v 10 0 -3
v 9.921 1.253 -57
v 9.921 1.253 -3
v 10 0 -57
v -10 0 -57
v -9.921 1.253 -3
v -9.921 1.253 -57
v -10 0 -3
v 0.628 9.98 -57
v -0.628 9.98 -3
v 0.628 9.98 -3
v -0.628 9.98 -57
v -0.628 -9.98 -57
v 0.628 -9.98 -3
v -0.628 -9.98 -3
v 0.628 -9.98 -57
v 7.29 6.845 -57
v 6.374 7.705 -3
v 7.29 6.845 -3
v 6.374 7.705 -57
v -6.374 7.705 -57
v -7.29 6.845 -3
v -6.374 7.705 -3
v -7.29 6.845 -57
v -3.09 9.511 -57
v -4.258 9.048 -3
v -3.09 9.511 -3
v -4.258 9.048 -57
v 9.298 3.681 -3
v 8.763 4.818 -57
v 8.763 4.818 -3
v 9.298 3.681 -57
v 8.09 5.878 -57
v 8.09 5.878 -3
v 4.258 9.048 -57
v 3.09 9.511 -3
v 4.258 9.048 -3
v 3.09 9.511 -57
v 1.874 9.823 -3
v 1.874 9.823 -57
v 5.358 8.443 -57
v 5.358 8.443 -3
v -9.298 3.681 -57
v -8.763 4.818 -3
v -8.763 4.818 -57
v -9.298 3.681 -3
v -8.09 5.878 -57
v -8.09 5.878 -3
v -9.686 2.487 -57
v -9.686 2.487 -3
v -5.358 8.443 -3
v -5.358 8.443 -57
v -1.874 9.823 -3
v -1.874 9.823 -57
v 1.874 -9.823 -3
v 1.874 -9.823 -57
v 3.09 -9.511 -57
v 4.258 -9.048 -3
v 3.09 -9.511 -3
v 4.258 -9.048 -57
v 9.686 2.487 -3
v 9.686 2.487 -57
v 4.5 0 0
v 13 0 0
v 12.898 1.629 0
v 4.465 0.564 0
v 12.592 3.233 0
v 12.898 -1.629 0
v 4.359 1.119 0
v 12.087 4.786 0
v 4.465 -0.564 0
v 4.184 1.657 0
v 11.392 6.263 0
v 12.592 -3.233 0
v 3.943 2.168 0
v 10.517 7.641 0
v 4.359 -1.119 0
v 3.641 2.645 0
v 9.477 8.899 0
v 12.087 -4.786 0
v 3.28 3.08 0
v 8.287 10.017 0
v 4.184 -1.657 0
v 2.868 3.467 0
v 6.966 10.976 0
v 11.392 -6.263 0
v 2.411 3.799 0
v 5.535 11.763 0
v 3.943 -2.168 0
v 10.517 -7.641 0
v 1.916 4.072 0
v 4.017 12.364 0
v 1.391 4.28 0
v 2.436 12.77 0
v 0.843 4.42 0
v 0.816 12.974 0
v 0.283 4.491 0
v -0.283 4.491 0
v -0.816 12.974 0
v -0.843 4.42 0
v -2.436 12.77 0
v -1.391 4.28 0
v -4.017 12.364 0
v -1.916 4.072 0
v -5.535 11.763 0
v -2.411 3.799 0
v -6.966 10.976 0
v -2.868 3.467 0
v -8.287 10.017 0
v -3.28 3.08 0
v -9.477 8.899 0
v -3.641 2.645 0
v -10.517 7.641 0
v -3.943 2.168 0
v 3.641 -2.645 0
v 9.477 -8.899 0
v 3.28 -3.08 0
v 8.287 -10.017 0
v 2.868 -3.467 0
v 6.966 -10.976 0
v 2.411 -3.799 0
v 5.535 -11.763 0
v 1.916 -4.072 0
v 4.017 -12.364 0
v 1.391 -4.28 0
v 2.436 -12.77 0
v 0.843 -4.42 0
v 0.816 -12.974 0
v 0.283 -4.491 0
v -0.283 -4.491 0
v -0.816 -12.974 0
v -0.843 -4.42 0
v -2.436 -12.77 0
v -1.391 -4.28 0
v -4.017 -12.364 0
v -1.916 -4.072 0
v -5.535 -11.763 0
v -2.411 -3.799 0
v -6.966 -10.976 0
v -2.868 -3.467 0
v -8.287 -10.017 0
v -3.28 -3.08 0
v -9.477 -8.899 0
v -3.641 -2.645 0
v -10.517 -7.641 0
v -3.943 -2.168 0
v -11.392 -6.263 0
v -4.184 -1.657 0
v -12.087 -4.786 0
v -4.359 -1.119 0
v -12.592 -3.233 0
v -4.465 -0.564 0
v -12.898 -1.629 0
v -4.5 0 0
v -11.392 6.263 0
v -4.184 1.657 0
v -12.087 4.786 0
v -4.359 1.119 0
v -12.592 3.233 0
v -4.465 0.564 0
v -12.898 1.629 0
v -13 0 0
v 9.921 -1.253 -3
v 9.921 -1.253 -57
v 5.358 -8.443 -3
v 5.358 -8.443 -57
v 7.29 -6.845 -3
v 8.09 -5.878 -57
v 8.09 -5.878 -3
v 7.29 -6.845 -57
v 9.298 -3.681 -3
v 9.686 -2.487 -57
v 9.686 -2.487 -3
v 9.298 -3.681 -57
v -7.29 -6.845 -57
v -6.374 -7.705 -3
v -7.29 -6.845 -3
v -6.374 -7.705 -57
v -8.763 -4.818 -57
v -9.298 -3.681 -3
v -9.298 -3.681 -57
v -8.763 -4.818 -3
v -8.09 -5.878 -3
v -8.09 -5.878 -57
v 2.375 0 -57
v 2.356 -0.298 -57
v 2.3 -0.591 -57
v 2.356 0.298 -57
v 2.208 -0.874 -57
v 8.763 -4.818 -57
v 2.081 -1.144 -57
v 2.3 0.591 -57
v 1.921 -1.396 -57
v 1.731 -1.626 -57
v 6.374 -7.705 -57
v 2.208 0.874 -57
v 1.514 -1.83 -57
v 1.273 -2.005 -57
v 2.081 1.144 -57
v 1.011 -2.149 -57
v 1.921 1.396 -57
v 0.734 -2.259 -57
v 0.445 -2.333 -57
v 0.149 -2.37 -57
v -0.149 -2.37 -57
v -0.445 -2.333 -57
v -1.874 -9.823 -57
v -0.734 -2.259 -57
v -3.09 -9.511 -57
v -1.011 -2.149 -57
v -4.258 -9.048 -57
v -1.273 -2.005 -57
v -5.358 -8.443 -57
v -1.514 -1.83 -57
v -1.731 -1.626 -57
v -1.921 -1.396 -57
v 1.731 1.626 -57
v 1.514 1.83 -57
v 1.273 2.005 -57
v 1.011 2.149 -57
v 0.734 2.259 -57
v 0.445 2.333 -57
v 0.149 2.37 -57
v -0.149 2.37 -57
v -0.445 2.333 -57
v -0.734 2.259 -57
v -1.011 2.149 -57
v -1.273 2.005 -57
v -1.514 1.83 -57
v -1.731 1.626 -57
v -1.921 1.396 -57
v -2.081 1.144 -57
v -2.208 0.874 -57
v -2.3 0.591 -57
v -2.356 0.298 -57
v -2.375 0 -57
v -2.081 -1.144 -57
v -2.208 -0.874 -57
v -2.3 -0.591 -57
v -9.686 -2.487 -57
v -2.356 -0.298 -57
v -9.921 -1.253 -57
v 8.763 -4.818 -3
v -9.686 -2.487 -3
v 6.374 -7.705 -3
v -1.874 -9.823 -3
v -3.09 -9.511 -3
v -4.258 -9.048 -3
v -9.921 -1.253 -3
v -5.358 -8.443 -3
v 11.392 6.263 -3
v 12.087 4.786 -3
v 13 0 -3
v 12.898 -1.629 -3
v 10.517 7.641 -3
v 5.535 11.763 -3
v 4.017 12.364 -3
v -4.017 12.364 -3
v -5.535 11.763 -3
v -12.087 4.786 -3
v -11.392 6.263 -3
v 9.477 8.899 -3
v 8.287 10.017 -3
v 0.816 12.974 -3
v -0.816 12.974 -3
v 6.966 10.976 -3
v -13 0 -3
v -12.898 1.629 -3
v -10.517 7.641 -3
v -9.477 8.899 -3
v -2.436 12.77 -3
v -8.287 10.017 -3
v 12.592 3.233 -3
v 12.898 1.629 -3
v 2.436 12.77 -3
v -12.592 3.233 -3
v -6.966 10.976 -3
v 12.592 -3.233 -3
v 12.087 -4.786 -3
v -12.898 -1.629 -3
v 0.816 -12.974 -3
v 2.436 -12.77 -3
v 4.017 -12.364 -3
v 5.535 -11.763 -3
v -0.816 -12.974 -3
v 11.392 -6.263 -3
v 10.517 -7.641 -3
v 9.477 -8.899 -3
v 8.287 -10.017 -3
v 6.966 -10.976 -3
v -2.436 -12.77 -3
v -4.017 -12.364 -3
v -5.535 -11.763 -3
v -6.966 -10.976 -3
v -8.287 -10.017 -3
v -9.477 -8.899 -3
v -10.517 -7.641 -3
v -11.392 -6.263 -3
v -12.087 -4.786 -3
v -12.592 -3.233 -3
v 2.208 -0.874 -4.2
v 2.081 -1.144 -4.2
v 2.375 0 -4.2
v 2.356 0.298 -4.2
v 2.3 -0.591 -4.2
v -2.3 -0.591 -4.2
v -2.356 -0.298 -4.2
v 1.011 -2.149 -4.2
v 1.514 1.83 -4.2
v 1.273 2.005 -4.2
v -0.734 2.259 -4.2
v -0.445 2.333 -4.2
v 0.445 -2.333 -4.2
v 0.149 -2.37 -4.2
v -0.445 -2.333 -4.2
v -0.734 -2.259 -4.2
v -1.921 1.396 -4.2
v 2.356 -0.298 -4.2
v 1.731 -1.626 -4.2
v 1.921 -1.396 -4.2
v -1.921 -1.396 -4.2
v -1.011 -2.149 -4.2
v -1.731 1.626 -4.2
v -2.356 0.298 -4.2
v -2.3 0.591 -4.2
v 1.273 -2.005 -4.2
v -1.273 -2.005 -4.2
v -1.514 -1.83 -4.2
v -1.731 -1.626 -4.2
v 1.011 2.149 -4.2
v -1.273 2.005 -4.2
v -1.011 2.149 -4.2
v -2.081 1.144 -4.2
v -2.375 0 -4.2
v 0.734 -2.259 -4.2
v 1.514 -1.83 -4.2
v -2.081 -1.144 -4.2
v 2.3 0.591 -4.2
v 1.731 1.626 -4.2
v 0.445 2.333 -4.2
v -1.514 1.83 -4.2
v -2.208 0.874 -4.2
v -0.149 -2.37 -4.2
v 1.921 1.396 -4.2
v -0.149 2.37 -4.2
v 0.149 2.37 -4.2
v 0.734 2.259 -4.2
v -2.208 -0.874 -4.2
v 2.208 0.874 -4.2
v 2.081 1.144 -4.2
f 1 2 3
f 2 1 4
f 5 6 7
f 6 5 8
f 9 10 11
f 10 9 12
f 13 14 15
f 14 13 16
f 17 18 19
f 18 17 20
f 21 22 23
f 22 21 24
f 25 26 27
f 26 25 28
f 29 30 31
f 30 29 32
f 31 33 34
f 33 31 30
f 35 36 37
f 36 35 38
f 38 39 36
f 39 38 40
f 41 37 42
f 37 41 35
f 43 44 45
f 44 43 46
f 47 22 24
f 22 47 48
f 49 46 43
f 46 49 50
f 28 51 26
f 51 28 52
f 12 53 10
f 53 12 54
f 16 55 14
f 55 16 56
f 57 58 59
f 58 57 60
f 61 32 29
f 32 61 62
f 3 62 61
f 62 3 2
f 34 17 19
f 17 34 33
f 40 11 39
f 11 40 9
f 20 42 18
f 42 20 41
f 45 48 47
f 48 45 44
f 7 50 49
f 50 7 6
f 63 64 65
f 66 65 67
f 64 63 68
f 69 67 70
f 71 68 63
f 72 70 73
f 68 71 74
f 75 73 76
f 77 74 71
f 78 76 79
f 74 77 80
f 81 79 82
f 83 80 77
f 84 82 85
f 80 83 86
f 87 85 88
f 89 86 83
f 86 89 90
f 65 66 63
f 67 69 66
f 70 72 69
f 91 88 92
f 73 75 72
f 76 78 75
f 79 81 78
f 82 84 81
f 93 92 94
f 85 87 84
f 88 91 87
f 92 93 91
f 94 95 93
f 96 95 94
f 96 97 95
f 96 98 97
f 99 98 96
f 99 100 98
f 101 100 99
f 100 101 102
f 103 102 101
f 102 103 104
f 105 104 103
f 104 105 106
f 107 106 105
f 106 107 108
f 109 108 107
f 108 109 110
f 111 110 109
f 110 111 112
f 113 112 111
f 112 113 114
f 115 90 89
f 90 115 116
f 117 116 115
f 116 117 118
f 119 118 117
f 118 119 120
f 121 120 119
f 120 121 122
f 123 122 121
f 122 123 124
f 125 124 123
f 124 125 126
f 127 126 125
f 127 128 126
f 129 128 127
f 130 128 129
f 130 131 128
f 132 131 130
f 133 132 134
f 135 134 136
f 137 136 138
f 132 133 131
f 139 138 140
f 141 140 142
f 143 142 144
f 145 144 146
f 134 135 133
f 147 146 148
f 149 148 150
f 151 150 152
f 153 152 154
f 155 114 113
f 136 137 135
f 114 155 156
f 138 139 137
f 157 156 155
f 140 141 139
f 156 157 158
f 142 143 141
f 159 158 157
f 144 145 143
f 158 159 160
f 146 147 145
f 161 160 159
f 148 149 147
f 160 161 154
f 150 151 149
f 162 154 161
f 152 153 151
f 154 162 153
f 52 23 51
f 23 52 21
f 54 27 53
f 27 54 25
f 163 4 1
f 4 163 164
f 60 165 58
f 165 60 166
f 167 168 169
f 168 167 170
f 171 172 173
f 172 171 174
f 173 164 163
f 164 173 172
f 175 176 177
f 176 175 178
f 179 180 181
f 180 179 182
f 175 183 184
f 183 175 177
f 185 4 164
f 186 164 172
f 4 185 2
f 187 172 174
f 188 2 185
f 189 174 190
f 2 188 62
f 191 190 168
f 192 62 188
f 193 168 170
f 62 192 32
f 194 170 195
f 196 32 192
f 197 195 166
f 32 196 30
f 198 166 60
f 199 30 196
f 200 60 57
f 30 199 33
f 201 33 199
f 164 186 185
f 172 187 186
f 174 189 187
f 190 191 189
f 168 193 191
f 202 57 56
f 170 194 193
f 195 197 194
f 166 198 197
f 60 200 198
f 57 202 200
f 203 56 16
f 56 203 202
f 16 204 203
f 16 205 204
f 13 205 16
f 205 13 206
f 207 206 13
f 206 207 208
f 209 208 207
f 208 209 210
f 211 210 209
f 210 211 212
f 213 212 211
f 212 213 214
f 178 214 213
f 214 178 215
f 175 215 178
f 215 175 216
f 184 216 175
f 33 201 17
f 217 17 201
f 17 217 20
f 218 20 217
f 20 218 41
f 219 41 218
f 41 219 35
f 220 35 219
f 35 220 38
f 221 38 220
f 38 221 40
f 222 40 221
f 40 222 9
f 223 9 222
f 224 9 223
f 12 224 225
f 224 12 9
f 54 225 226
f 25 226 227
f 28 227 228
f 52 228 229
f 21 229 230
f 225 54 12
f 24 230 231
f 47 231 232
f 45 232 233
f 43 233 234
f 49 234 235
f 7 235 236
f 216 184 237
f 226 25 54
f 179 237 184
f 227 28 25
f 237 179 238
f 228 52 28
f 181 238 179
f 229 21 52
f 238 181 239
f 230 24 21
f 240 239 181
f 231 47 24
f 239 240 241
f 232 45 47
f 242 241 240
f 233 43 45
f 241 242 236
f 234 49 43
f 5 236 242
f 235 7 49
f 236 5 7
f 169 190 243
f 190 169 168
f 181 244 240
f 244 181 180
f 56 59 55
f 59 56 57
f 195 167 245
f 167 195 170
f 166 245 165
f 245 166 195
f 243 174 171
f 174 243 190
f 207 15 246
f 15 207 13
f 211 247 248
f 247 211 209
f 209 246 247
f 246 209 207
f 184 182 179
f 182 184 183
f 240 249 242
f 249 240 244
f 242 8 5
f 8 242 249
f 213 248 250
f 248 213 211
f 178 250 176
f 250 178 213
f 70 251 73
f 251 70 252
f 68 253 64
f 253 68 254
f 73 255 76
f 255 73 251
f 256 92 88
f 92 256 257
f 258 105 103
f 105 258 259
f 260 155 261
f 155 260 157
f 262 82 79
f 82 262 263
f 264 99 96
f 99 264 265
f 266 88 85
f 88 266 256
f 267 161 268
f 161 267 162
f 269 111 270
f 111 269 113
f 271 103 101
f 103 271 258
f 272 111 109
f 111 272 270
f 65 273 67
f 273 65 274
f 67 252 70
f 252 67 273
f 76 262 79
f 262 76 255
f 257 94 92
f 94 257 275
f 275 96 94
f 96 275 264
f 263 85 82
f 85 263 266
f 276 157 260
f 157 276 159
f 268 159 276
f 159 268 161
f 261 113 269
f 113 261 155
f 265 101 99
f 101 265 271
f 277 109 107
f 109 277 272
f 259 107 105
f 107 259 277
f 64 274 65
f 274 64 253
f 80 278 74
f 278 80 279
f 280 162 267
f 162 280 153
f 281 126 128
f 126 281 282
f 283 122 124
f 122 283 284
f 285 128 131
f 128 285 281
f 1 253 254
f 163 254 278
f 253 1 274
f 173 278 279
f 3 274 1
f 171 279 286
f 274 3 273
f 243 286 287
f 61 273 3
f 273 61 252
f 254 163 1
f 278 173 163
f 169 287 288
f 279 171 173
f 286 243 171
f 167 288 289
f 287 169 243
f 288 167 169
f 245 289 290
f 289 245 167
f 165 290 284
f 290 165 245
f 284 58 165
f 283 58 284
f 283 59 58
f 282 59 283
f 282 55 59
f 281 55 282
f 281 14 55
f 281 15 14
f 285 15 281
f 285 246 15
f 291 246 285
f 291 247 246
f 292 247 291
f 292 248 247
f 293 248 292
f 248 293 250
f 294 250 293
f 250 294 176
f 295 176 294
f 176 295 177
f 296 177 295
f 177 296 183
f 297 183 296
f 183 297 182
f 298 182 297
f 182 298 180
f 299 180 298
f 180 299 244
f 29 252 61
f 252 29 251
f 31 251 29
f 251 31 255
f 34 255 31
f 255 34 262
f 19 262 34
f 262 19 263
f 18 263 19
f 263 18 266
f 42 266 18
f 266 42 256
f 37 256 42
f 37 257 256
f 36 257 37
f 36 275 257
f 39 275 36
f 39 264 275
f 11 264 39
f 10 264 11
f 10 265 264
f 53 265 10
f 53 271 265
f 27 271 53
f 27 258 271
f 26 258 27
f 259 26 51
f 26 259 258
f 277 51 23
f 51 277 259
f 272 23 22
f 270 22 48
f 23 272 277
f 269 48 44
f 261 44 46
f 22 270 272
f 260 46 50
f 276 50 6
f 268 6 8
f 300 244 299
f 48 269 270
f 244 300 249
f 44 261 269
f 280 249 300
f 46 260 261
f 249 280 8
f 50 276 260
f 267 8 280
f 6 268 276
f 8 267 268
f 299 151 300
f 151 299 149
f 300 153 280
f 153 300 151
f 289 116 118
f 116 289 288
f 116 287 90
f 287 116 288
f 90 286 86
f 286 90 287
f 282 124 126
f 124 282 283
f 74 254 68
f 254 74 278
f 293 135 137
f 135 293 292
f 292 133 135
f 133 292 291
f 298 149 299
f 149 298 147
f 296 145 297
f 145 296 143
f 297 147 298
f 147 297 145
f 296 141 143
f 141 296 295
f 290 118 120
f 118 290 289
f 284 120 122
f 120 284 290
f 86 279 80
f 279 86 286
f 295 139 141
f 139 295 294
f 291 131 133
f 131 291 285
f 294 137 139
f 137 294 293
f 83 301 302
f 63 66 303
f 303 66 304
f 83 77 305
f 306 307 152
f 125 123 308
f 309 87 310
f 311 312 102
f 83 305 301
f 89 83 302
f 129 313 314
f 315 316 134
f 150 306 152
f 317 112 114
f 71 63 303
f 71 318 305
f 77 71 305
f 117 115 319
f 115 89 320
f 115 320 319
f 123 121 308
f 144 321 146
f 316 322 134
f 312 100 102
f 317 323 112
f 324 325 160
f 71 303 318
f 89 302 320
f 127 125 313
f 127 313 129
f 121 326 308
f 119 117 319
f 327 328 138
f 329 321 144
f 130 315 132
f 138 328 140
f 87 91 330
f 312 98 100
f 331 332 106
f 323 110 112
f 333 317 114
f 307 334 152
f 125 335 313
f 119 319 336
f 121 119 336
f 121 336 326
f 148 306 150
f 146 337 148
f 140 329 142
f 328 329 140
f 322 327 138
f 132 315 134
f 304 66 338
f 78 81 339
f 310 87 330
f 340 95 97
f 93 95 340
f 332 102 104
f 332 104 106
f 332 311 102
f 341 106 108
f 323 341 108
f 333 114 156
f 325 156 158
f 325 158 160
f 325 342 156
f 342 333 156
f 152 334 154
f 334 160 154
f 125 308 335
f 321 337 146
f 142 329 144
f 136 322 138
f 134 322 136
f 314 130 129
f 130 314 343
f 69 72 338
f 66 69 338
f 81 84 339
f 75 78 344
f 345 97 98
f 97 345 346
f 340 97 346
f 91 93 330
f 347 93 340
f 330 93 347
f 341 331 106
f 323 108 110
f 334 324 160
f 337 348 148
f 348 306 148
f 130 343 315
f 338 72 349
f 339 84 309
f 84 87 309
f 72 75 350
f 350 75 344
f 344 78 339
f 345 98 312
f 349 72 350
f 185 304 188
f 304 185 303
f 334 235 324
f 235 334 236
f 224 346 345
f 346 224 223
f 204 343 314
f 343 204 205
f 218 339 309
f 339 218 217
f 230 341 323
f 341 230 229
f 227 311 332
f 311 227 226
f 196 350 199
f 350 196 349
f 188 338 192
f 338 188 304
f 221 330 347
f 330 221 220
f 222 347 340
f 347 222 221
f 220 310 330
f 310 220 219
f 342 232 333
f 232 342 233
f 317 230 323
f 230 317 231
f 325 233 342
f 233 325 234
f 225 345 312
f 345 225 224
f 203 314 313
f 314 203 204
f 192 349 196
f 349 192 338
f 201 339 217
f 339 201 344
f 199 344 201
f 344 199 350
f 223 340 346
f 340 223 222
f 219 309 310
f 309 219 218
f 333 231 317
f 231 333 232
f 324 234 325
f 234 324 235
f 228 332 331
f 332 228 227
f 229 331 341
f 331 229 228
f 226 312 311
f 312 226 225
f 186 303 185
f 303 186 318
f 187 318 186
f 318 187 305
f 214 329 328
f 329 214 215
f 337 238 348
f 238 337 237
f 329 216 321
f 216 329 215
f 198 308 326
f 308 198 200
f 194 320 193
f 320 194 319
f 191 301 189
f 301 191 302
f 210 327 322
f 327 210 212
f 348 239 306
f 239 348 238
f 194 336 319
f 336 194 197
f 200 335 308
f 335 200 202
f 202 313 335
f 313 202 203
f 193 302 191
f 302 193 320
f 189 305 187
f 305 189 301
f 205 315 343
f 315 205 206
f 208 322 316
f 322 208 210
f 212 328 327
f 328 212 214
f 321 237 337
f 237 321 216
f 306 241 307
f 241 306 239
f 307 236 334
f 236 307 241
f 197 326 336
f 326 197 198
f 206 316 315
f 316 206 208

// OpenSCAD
$fn = 50;


difference() {
	union() {
		translate(v = [0, 0, -57.0000000000]) {
			cylinder(h = 57, r = 10.0000000000);
		}
		translate(v = [0, 0, -3.0000000000]) {
			cylinder(h = 3, r = 13.0000000000);
		}
	}
	union() {
		translate(v = [0, 0, 0]) {
			rotate(a = [0, 0, 0]) {
				difference() {
					union() {
						#translate(v = [0, 0, -57.0000000000]) {
							cylinder(h = 57, r = 2.2500000000);
						}
						#translate(v = [0, 0, -4.2000000000]) {
							cylinder(h = 4.2000000000, r1 = 2.3750000000, r2 = 4.5000000000);
						}
						#translate(v = [0, 0, -57.0000000000]) {
							cylinder(h = 57, r = 2.3750000000);
						}
						#translate(v = [0, 0, -57.0000000000]) {
							cylinder(h = 57, r = 2.2500000000);
						}
					}
					union();
				}
			}
		}
	}
}
